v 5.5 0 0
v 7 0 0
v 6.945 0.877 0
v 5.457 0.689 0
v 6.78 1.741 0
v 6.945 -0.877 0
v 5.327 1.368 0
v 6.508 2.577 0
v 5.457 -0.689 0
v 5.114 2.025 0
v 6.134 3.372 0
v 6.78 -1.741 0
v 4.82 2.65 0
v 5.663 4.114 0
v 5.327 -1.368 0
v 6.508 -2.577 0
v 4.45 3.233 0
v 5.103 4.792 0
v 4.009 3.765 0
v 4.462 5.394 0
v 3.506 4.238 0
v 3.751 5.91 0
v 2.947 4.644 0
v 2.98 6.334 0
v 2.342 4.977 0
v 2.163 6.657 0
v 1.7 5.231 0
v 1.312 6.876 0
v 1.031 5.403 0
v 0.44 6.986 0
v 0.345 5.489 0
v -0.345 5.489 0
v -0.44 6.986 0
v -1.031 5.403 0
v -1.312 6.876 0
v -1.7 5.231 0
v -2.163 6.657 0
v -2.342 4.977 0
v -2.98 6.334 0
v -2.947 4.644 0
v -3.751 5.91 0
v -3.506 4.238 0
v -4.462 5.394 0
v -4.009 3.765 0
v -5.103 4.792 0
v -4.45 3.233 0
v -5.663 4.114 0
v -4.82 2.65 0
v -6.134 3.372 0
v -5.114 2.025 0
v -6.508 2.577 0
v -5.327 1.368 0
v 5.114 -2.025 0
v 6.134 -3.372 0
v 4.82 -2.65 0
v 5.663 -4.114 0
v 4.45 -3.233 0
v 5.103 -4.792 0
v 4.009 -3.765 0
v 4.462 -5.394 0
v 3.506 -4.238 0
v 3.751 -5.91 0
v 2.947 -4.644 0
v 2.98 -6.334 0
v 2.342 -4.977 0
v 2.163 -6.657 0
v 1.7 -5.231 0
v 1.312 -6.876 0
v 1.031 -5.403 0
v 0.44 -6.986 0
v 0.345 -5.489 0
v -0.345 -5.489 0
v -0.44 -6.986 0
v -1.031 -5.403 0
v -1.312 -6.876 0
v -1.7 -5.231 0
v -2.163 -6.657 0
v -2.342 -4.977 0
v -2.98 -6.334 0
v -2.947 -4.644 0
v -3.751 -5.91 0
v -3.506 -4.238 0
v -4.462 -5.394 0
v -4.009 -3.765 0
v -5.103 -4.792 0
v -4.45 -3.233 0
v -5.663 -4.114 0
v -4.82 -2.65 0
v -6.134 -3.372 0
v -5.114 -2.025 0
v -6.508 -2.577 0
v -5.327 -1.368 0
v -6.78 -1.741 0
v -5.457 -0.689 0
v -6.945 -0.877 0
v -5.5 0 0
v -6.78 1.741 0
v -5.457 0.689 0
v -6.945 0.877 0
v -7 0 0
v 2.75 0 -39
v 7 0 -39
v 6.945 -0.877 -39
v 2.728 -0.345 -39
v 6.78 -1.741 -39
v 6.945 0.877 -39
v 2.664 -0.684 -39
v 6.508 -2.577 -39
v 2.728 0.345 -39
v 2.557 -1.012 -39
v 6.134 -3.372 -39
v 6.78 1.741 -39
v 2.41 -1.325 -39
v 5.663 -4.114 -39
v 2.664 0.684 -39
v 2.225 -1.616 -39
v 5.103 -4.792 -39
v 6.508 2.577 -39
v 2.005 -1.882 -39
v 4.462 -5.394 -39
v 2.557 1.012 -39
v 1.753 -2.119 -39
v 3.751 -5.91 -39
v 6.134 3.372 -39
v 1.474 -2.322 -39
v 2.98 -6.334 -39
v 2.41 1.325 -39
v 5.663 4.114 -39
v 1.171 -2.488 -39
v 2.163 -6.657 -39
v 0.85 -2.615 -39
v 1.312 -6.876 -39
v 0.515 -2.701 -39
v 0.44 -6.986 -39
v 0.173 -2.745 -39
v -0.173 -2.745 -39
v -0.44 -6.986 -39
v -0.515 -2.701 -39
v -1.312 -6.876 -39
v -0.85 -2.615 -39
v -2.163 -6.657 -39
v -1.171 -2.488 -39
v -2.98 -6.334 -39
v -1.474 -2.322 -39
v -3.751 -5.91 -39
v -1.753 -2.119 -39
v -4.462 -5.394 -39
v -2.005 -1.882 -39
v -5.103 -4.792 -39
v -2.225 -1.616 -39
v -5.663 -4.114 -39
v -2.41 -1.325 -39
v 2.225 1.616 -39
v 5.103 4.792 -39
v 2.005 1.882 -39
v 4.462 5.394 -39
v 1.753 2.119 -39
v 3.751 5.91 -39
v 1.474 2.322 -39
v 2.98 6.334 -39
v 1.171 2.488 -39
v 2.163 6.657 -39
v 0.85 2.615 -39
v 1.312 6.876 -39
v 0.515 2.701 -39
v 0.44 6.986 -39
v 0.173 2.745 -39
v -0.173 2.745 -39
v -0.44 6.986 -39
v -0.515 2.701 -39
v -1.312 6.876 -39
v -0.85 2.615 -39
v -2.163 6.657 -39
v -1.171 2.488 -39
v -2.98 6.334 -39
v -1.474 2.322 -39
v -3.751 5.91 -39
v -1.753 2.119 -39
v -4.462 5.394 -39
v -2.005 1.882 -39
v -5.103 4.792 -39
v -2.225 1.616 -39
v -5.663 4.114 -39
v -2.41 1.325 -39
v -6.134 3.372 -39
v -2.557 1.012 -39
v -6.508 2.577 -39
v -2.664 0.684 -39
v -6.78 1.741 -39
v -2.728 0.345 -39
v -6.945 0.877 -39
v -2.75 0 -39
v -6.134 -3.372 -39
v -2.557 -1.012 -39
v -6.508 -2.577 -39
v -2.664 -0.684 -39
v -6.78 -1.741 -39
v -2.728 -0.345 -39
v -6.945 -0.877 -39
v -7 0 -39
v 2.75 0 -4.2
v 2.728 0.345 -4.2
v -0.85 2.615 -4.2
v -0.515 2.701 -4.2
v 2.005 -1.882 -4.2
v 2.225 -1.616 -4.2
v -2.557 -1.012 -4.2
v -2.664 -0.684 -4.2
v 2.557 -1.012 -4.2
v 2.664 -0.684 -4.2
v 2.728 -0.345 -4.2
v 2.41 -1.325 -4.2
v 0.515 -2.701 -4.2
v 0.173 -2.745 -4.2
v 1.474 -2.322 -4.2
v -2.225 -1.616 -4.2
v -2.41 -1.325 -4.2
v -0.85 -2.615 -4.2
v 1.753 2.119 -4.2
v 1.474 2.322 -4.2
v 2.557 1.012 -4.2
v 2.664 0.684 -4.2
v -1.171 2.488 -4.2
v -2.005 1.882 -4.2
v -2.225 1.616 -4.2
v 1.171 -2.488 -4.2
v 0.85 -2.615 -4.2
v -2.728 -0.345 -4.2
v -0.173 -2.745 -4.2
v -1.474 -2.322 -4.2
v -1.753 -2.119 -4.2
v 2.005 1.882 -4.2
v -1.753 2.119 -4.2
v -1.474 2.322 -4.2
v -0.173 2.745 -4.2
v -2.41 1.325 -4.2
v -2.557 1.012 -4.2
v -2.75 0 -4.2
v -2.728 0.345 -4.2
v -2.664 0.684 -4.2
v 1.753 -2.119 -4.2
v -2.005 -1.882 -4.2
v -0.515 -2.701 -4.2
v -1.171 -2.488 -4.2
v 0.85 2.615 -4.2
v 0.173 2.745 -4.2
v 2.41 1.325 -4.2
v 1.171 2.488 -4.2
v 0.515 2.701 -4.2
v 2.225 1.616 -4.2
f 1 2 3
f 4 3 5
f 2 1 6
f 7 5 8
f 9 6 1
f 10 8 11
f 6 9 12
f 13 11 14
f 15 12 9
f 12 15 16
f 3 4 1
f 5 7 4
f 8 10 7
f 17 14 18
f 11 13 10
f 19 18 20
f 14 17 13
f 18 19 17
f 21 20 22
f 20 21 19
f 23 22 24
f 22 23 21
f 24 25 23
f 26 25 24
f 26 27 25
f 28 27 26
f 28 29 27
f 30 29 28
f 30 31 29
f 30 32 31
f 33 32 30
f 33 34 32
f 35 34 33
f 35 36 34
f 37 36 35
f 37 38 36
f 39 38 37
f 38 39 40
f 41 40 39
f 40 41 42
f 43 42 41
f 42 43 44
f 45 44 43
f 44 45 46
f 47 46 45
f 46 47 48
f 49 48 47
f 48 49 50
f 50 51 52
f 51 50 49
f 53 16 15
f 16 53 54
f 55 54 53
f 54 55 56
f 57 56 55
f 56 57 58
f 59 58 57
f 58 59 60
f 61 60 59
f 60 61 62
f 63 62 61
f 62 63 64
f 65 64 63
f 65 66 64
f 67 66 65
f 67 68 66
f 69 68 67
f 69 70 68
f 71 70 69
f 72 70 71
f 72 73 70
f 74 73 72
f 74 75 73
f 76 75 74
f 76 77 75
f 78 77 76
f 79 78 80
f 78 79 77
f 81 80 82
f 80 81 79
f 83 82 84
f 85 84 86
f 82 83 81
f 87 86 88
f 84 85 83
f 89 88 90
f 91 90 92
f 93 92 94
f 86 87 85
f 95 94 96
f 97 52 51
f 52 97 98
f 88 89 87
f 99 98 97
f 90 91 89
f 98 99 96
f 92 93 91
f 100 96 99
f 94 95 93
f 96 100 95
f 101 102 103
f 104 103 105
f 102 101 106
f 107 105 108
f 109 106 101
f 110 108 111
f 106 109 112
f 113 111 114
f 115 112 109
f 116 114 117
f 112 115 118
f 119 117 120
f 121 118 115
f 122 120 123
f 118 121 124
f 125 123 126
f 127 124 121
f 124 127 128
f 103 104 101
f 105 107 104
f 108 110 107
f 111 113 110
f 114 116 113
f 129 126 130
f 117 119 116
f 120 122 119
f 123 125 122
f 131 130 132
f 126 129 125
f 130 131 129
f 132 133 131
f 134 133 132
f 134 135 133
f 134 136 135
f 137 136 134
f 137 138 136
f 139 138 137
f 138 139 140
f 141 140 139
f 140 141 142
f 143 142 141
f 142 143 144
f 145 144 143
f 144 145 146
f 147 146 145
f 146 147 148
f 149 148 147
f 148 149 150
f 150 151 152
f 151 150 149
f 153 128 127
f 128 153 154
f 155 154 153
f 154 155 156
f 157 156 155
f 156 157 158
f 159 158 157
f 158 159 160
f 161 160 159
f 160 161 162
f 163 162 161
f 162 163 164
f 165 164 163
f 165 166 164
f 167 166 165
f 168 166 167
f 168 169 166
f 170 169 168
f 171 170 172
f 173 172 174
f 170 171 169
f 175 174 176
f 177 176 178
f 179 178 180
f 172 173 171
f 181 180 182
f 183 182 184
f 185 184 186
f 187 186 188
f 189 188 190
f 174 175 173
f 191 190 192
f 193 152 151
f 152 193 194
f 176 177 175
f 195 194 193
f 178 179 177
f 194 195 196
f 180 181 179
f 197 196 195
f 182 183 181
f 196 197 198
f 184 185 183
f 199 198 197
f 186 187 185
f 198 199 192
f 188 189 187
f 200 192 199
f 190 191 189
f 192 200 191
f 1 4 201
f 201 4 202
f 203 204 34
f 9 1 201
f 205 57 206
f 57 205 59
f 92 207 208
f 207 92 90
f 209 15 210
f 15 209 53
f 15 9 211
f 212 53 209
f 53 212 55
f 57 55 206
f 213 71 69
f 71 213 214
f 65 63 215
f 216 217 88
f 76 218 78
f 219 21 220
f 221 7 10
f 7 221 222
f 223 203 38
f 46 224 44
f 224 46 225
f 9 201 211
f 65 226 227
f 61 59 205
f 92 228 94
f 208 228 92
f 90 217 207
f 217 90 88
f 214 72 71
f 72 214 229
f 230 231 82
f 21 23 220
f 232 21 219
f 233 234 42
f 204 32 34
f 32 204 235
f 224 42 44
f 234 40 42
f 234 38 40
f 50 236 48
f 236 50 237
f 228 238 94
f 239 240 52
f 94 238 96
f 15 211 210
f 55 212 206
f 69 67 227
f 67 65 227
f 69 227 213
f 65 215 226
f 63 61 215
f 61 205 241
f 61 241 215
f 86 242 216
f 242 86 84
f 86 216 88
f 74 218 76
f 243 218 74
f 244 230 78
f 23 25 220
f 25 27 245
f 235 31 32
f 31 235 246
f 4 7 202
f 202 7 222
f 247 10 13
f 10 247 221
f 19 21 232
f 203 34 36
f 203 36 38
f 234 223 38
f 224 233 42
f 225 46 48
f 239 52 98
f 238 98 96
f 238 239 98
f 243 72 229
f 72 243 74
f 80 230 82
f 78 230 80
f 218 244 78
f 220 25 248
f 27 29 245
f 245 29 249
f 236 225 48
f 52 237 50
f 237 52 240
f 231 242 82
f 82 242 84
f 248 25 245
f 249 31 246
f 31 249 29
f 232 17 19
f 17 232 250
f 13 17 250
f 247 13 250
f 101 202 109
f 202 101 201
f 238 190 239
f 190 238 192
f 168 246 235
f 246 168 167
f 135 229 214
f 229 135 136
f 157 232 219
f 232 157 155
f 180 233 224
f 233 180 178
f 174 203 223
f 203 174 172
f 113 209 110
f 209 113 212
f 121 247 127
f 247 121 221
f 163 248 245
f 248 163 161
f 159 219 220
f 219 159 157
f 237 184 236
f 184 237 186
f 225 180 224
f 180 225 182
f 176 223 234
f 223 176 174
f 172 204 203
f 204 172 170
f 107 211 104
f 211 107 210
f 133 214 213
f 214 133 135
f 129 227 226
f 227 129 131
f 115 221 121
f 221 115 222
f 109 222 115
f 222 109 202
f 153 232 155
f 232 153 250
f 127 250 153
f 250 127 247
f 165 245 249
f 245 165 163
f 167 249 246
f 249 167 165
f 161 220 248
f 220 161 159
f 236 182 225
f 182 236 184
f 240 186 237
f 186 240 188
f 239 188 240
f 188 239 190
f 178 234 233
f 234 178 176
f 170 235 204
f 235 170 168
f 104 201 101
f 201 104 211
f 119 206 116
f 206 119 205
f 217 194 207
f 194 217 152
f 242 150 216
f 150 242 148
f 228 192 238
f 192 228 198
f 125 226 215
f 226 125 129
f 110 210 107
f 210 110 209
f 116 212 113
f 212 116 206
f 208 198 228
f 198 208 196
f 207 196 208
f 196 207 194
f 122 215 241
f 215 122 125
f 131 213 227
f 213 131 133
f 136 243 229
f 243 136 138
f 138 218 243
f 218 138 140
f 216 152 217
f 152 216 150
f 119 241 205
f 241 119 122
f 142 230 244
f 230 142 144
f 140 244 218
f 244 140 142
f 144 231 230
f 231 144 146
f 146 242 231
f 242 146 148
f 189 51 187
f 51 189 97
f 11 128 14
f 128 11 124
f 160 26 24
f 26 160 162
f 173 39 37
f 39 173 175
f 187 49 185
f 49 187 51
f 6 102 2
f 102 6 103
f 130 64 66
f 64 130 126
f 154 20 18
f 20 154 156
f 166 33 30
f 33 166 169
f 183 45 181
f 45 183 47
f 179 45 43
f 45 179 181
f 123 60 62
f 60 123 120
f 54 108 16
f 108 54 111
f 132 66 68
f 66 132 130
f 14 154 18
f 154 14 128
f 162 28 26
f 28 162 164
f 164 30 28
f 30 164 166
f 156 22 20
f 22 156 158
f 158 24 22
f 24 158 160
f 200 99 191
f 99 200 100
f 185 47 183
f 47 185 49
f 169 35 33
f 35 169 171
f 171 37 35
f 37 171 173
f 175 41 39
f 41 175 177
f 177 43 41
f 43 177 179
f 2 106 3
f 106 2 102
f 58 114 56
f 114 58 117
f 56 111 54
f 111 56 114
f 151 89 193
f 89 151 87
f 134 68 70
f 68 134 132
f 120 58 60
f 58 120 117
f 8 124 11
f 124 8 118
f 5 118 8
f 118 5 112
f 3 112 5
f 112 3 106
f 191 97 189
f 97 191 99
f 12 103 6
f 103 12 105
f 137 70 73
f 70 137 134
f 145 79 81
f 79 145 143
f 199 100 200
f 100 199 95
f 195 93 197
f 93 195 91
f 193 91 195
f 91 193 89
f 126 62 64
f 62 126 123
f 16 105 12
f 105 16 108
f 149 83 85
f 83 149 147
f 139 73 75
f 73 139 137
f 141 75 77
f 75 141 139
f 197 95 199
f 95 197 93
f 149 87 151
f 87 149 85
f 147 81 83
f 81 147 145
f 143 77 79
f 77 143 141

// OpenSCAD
$fn = 50;


difference() {
	union() {
		translate(v = [0, 0, -39.0000000000]) {
			cylinder(h = 39, r = 7.0000000000);
		}
	}
	union() {
		translate(v = [0, 0, 0]) {
			rotate(a = [0, 0, 0]) {
				difference() {
					union() {
						#translate(v = [0, 0, -39.0000000000]) {
							cylinder(h = 39, r = 2.2500000000);
						}
						#translate(v = [0, 0, -4.2000000000]) {
							cylinder(h = 4.2000000000, r = 7.0000000000, r1 = 2.7500000000, r2 = 5.5000000000);
						}
						#translate(v = [0, 0, -39.0000000000]) {
							cylinder(h = 39, r = 2.7500000000);
						}
						#translate(v = [0, 0, -39.0000000000]) {
							cylinder(h = 39, r = 2.2500000000);
						}
					}
					union();
				}
			}
		}
	}
}
